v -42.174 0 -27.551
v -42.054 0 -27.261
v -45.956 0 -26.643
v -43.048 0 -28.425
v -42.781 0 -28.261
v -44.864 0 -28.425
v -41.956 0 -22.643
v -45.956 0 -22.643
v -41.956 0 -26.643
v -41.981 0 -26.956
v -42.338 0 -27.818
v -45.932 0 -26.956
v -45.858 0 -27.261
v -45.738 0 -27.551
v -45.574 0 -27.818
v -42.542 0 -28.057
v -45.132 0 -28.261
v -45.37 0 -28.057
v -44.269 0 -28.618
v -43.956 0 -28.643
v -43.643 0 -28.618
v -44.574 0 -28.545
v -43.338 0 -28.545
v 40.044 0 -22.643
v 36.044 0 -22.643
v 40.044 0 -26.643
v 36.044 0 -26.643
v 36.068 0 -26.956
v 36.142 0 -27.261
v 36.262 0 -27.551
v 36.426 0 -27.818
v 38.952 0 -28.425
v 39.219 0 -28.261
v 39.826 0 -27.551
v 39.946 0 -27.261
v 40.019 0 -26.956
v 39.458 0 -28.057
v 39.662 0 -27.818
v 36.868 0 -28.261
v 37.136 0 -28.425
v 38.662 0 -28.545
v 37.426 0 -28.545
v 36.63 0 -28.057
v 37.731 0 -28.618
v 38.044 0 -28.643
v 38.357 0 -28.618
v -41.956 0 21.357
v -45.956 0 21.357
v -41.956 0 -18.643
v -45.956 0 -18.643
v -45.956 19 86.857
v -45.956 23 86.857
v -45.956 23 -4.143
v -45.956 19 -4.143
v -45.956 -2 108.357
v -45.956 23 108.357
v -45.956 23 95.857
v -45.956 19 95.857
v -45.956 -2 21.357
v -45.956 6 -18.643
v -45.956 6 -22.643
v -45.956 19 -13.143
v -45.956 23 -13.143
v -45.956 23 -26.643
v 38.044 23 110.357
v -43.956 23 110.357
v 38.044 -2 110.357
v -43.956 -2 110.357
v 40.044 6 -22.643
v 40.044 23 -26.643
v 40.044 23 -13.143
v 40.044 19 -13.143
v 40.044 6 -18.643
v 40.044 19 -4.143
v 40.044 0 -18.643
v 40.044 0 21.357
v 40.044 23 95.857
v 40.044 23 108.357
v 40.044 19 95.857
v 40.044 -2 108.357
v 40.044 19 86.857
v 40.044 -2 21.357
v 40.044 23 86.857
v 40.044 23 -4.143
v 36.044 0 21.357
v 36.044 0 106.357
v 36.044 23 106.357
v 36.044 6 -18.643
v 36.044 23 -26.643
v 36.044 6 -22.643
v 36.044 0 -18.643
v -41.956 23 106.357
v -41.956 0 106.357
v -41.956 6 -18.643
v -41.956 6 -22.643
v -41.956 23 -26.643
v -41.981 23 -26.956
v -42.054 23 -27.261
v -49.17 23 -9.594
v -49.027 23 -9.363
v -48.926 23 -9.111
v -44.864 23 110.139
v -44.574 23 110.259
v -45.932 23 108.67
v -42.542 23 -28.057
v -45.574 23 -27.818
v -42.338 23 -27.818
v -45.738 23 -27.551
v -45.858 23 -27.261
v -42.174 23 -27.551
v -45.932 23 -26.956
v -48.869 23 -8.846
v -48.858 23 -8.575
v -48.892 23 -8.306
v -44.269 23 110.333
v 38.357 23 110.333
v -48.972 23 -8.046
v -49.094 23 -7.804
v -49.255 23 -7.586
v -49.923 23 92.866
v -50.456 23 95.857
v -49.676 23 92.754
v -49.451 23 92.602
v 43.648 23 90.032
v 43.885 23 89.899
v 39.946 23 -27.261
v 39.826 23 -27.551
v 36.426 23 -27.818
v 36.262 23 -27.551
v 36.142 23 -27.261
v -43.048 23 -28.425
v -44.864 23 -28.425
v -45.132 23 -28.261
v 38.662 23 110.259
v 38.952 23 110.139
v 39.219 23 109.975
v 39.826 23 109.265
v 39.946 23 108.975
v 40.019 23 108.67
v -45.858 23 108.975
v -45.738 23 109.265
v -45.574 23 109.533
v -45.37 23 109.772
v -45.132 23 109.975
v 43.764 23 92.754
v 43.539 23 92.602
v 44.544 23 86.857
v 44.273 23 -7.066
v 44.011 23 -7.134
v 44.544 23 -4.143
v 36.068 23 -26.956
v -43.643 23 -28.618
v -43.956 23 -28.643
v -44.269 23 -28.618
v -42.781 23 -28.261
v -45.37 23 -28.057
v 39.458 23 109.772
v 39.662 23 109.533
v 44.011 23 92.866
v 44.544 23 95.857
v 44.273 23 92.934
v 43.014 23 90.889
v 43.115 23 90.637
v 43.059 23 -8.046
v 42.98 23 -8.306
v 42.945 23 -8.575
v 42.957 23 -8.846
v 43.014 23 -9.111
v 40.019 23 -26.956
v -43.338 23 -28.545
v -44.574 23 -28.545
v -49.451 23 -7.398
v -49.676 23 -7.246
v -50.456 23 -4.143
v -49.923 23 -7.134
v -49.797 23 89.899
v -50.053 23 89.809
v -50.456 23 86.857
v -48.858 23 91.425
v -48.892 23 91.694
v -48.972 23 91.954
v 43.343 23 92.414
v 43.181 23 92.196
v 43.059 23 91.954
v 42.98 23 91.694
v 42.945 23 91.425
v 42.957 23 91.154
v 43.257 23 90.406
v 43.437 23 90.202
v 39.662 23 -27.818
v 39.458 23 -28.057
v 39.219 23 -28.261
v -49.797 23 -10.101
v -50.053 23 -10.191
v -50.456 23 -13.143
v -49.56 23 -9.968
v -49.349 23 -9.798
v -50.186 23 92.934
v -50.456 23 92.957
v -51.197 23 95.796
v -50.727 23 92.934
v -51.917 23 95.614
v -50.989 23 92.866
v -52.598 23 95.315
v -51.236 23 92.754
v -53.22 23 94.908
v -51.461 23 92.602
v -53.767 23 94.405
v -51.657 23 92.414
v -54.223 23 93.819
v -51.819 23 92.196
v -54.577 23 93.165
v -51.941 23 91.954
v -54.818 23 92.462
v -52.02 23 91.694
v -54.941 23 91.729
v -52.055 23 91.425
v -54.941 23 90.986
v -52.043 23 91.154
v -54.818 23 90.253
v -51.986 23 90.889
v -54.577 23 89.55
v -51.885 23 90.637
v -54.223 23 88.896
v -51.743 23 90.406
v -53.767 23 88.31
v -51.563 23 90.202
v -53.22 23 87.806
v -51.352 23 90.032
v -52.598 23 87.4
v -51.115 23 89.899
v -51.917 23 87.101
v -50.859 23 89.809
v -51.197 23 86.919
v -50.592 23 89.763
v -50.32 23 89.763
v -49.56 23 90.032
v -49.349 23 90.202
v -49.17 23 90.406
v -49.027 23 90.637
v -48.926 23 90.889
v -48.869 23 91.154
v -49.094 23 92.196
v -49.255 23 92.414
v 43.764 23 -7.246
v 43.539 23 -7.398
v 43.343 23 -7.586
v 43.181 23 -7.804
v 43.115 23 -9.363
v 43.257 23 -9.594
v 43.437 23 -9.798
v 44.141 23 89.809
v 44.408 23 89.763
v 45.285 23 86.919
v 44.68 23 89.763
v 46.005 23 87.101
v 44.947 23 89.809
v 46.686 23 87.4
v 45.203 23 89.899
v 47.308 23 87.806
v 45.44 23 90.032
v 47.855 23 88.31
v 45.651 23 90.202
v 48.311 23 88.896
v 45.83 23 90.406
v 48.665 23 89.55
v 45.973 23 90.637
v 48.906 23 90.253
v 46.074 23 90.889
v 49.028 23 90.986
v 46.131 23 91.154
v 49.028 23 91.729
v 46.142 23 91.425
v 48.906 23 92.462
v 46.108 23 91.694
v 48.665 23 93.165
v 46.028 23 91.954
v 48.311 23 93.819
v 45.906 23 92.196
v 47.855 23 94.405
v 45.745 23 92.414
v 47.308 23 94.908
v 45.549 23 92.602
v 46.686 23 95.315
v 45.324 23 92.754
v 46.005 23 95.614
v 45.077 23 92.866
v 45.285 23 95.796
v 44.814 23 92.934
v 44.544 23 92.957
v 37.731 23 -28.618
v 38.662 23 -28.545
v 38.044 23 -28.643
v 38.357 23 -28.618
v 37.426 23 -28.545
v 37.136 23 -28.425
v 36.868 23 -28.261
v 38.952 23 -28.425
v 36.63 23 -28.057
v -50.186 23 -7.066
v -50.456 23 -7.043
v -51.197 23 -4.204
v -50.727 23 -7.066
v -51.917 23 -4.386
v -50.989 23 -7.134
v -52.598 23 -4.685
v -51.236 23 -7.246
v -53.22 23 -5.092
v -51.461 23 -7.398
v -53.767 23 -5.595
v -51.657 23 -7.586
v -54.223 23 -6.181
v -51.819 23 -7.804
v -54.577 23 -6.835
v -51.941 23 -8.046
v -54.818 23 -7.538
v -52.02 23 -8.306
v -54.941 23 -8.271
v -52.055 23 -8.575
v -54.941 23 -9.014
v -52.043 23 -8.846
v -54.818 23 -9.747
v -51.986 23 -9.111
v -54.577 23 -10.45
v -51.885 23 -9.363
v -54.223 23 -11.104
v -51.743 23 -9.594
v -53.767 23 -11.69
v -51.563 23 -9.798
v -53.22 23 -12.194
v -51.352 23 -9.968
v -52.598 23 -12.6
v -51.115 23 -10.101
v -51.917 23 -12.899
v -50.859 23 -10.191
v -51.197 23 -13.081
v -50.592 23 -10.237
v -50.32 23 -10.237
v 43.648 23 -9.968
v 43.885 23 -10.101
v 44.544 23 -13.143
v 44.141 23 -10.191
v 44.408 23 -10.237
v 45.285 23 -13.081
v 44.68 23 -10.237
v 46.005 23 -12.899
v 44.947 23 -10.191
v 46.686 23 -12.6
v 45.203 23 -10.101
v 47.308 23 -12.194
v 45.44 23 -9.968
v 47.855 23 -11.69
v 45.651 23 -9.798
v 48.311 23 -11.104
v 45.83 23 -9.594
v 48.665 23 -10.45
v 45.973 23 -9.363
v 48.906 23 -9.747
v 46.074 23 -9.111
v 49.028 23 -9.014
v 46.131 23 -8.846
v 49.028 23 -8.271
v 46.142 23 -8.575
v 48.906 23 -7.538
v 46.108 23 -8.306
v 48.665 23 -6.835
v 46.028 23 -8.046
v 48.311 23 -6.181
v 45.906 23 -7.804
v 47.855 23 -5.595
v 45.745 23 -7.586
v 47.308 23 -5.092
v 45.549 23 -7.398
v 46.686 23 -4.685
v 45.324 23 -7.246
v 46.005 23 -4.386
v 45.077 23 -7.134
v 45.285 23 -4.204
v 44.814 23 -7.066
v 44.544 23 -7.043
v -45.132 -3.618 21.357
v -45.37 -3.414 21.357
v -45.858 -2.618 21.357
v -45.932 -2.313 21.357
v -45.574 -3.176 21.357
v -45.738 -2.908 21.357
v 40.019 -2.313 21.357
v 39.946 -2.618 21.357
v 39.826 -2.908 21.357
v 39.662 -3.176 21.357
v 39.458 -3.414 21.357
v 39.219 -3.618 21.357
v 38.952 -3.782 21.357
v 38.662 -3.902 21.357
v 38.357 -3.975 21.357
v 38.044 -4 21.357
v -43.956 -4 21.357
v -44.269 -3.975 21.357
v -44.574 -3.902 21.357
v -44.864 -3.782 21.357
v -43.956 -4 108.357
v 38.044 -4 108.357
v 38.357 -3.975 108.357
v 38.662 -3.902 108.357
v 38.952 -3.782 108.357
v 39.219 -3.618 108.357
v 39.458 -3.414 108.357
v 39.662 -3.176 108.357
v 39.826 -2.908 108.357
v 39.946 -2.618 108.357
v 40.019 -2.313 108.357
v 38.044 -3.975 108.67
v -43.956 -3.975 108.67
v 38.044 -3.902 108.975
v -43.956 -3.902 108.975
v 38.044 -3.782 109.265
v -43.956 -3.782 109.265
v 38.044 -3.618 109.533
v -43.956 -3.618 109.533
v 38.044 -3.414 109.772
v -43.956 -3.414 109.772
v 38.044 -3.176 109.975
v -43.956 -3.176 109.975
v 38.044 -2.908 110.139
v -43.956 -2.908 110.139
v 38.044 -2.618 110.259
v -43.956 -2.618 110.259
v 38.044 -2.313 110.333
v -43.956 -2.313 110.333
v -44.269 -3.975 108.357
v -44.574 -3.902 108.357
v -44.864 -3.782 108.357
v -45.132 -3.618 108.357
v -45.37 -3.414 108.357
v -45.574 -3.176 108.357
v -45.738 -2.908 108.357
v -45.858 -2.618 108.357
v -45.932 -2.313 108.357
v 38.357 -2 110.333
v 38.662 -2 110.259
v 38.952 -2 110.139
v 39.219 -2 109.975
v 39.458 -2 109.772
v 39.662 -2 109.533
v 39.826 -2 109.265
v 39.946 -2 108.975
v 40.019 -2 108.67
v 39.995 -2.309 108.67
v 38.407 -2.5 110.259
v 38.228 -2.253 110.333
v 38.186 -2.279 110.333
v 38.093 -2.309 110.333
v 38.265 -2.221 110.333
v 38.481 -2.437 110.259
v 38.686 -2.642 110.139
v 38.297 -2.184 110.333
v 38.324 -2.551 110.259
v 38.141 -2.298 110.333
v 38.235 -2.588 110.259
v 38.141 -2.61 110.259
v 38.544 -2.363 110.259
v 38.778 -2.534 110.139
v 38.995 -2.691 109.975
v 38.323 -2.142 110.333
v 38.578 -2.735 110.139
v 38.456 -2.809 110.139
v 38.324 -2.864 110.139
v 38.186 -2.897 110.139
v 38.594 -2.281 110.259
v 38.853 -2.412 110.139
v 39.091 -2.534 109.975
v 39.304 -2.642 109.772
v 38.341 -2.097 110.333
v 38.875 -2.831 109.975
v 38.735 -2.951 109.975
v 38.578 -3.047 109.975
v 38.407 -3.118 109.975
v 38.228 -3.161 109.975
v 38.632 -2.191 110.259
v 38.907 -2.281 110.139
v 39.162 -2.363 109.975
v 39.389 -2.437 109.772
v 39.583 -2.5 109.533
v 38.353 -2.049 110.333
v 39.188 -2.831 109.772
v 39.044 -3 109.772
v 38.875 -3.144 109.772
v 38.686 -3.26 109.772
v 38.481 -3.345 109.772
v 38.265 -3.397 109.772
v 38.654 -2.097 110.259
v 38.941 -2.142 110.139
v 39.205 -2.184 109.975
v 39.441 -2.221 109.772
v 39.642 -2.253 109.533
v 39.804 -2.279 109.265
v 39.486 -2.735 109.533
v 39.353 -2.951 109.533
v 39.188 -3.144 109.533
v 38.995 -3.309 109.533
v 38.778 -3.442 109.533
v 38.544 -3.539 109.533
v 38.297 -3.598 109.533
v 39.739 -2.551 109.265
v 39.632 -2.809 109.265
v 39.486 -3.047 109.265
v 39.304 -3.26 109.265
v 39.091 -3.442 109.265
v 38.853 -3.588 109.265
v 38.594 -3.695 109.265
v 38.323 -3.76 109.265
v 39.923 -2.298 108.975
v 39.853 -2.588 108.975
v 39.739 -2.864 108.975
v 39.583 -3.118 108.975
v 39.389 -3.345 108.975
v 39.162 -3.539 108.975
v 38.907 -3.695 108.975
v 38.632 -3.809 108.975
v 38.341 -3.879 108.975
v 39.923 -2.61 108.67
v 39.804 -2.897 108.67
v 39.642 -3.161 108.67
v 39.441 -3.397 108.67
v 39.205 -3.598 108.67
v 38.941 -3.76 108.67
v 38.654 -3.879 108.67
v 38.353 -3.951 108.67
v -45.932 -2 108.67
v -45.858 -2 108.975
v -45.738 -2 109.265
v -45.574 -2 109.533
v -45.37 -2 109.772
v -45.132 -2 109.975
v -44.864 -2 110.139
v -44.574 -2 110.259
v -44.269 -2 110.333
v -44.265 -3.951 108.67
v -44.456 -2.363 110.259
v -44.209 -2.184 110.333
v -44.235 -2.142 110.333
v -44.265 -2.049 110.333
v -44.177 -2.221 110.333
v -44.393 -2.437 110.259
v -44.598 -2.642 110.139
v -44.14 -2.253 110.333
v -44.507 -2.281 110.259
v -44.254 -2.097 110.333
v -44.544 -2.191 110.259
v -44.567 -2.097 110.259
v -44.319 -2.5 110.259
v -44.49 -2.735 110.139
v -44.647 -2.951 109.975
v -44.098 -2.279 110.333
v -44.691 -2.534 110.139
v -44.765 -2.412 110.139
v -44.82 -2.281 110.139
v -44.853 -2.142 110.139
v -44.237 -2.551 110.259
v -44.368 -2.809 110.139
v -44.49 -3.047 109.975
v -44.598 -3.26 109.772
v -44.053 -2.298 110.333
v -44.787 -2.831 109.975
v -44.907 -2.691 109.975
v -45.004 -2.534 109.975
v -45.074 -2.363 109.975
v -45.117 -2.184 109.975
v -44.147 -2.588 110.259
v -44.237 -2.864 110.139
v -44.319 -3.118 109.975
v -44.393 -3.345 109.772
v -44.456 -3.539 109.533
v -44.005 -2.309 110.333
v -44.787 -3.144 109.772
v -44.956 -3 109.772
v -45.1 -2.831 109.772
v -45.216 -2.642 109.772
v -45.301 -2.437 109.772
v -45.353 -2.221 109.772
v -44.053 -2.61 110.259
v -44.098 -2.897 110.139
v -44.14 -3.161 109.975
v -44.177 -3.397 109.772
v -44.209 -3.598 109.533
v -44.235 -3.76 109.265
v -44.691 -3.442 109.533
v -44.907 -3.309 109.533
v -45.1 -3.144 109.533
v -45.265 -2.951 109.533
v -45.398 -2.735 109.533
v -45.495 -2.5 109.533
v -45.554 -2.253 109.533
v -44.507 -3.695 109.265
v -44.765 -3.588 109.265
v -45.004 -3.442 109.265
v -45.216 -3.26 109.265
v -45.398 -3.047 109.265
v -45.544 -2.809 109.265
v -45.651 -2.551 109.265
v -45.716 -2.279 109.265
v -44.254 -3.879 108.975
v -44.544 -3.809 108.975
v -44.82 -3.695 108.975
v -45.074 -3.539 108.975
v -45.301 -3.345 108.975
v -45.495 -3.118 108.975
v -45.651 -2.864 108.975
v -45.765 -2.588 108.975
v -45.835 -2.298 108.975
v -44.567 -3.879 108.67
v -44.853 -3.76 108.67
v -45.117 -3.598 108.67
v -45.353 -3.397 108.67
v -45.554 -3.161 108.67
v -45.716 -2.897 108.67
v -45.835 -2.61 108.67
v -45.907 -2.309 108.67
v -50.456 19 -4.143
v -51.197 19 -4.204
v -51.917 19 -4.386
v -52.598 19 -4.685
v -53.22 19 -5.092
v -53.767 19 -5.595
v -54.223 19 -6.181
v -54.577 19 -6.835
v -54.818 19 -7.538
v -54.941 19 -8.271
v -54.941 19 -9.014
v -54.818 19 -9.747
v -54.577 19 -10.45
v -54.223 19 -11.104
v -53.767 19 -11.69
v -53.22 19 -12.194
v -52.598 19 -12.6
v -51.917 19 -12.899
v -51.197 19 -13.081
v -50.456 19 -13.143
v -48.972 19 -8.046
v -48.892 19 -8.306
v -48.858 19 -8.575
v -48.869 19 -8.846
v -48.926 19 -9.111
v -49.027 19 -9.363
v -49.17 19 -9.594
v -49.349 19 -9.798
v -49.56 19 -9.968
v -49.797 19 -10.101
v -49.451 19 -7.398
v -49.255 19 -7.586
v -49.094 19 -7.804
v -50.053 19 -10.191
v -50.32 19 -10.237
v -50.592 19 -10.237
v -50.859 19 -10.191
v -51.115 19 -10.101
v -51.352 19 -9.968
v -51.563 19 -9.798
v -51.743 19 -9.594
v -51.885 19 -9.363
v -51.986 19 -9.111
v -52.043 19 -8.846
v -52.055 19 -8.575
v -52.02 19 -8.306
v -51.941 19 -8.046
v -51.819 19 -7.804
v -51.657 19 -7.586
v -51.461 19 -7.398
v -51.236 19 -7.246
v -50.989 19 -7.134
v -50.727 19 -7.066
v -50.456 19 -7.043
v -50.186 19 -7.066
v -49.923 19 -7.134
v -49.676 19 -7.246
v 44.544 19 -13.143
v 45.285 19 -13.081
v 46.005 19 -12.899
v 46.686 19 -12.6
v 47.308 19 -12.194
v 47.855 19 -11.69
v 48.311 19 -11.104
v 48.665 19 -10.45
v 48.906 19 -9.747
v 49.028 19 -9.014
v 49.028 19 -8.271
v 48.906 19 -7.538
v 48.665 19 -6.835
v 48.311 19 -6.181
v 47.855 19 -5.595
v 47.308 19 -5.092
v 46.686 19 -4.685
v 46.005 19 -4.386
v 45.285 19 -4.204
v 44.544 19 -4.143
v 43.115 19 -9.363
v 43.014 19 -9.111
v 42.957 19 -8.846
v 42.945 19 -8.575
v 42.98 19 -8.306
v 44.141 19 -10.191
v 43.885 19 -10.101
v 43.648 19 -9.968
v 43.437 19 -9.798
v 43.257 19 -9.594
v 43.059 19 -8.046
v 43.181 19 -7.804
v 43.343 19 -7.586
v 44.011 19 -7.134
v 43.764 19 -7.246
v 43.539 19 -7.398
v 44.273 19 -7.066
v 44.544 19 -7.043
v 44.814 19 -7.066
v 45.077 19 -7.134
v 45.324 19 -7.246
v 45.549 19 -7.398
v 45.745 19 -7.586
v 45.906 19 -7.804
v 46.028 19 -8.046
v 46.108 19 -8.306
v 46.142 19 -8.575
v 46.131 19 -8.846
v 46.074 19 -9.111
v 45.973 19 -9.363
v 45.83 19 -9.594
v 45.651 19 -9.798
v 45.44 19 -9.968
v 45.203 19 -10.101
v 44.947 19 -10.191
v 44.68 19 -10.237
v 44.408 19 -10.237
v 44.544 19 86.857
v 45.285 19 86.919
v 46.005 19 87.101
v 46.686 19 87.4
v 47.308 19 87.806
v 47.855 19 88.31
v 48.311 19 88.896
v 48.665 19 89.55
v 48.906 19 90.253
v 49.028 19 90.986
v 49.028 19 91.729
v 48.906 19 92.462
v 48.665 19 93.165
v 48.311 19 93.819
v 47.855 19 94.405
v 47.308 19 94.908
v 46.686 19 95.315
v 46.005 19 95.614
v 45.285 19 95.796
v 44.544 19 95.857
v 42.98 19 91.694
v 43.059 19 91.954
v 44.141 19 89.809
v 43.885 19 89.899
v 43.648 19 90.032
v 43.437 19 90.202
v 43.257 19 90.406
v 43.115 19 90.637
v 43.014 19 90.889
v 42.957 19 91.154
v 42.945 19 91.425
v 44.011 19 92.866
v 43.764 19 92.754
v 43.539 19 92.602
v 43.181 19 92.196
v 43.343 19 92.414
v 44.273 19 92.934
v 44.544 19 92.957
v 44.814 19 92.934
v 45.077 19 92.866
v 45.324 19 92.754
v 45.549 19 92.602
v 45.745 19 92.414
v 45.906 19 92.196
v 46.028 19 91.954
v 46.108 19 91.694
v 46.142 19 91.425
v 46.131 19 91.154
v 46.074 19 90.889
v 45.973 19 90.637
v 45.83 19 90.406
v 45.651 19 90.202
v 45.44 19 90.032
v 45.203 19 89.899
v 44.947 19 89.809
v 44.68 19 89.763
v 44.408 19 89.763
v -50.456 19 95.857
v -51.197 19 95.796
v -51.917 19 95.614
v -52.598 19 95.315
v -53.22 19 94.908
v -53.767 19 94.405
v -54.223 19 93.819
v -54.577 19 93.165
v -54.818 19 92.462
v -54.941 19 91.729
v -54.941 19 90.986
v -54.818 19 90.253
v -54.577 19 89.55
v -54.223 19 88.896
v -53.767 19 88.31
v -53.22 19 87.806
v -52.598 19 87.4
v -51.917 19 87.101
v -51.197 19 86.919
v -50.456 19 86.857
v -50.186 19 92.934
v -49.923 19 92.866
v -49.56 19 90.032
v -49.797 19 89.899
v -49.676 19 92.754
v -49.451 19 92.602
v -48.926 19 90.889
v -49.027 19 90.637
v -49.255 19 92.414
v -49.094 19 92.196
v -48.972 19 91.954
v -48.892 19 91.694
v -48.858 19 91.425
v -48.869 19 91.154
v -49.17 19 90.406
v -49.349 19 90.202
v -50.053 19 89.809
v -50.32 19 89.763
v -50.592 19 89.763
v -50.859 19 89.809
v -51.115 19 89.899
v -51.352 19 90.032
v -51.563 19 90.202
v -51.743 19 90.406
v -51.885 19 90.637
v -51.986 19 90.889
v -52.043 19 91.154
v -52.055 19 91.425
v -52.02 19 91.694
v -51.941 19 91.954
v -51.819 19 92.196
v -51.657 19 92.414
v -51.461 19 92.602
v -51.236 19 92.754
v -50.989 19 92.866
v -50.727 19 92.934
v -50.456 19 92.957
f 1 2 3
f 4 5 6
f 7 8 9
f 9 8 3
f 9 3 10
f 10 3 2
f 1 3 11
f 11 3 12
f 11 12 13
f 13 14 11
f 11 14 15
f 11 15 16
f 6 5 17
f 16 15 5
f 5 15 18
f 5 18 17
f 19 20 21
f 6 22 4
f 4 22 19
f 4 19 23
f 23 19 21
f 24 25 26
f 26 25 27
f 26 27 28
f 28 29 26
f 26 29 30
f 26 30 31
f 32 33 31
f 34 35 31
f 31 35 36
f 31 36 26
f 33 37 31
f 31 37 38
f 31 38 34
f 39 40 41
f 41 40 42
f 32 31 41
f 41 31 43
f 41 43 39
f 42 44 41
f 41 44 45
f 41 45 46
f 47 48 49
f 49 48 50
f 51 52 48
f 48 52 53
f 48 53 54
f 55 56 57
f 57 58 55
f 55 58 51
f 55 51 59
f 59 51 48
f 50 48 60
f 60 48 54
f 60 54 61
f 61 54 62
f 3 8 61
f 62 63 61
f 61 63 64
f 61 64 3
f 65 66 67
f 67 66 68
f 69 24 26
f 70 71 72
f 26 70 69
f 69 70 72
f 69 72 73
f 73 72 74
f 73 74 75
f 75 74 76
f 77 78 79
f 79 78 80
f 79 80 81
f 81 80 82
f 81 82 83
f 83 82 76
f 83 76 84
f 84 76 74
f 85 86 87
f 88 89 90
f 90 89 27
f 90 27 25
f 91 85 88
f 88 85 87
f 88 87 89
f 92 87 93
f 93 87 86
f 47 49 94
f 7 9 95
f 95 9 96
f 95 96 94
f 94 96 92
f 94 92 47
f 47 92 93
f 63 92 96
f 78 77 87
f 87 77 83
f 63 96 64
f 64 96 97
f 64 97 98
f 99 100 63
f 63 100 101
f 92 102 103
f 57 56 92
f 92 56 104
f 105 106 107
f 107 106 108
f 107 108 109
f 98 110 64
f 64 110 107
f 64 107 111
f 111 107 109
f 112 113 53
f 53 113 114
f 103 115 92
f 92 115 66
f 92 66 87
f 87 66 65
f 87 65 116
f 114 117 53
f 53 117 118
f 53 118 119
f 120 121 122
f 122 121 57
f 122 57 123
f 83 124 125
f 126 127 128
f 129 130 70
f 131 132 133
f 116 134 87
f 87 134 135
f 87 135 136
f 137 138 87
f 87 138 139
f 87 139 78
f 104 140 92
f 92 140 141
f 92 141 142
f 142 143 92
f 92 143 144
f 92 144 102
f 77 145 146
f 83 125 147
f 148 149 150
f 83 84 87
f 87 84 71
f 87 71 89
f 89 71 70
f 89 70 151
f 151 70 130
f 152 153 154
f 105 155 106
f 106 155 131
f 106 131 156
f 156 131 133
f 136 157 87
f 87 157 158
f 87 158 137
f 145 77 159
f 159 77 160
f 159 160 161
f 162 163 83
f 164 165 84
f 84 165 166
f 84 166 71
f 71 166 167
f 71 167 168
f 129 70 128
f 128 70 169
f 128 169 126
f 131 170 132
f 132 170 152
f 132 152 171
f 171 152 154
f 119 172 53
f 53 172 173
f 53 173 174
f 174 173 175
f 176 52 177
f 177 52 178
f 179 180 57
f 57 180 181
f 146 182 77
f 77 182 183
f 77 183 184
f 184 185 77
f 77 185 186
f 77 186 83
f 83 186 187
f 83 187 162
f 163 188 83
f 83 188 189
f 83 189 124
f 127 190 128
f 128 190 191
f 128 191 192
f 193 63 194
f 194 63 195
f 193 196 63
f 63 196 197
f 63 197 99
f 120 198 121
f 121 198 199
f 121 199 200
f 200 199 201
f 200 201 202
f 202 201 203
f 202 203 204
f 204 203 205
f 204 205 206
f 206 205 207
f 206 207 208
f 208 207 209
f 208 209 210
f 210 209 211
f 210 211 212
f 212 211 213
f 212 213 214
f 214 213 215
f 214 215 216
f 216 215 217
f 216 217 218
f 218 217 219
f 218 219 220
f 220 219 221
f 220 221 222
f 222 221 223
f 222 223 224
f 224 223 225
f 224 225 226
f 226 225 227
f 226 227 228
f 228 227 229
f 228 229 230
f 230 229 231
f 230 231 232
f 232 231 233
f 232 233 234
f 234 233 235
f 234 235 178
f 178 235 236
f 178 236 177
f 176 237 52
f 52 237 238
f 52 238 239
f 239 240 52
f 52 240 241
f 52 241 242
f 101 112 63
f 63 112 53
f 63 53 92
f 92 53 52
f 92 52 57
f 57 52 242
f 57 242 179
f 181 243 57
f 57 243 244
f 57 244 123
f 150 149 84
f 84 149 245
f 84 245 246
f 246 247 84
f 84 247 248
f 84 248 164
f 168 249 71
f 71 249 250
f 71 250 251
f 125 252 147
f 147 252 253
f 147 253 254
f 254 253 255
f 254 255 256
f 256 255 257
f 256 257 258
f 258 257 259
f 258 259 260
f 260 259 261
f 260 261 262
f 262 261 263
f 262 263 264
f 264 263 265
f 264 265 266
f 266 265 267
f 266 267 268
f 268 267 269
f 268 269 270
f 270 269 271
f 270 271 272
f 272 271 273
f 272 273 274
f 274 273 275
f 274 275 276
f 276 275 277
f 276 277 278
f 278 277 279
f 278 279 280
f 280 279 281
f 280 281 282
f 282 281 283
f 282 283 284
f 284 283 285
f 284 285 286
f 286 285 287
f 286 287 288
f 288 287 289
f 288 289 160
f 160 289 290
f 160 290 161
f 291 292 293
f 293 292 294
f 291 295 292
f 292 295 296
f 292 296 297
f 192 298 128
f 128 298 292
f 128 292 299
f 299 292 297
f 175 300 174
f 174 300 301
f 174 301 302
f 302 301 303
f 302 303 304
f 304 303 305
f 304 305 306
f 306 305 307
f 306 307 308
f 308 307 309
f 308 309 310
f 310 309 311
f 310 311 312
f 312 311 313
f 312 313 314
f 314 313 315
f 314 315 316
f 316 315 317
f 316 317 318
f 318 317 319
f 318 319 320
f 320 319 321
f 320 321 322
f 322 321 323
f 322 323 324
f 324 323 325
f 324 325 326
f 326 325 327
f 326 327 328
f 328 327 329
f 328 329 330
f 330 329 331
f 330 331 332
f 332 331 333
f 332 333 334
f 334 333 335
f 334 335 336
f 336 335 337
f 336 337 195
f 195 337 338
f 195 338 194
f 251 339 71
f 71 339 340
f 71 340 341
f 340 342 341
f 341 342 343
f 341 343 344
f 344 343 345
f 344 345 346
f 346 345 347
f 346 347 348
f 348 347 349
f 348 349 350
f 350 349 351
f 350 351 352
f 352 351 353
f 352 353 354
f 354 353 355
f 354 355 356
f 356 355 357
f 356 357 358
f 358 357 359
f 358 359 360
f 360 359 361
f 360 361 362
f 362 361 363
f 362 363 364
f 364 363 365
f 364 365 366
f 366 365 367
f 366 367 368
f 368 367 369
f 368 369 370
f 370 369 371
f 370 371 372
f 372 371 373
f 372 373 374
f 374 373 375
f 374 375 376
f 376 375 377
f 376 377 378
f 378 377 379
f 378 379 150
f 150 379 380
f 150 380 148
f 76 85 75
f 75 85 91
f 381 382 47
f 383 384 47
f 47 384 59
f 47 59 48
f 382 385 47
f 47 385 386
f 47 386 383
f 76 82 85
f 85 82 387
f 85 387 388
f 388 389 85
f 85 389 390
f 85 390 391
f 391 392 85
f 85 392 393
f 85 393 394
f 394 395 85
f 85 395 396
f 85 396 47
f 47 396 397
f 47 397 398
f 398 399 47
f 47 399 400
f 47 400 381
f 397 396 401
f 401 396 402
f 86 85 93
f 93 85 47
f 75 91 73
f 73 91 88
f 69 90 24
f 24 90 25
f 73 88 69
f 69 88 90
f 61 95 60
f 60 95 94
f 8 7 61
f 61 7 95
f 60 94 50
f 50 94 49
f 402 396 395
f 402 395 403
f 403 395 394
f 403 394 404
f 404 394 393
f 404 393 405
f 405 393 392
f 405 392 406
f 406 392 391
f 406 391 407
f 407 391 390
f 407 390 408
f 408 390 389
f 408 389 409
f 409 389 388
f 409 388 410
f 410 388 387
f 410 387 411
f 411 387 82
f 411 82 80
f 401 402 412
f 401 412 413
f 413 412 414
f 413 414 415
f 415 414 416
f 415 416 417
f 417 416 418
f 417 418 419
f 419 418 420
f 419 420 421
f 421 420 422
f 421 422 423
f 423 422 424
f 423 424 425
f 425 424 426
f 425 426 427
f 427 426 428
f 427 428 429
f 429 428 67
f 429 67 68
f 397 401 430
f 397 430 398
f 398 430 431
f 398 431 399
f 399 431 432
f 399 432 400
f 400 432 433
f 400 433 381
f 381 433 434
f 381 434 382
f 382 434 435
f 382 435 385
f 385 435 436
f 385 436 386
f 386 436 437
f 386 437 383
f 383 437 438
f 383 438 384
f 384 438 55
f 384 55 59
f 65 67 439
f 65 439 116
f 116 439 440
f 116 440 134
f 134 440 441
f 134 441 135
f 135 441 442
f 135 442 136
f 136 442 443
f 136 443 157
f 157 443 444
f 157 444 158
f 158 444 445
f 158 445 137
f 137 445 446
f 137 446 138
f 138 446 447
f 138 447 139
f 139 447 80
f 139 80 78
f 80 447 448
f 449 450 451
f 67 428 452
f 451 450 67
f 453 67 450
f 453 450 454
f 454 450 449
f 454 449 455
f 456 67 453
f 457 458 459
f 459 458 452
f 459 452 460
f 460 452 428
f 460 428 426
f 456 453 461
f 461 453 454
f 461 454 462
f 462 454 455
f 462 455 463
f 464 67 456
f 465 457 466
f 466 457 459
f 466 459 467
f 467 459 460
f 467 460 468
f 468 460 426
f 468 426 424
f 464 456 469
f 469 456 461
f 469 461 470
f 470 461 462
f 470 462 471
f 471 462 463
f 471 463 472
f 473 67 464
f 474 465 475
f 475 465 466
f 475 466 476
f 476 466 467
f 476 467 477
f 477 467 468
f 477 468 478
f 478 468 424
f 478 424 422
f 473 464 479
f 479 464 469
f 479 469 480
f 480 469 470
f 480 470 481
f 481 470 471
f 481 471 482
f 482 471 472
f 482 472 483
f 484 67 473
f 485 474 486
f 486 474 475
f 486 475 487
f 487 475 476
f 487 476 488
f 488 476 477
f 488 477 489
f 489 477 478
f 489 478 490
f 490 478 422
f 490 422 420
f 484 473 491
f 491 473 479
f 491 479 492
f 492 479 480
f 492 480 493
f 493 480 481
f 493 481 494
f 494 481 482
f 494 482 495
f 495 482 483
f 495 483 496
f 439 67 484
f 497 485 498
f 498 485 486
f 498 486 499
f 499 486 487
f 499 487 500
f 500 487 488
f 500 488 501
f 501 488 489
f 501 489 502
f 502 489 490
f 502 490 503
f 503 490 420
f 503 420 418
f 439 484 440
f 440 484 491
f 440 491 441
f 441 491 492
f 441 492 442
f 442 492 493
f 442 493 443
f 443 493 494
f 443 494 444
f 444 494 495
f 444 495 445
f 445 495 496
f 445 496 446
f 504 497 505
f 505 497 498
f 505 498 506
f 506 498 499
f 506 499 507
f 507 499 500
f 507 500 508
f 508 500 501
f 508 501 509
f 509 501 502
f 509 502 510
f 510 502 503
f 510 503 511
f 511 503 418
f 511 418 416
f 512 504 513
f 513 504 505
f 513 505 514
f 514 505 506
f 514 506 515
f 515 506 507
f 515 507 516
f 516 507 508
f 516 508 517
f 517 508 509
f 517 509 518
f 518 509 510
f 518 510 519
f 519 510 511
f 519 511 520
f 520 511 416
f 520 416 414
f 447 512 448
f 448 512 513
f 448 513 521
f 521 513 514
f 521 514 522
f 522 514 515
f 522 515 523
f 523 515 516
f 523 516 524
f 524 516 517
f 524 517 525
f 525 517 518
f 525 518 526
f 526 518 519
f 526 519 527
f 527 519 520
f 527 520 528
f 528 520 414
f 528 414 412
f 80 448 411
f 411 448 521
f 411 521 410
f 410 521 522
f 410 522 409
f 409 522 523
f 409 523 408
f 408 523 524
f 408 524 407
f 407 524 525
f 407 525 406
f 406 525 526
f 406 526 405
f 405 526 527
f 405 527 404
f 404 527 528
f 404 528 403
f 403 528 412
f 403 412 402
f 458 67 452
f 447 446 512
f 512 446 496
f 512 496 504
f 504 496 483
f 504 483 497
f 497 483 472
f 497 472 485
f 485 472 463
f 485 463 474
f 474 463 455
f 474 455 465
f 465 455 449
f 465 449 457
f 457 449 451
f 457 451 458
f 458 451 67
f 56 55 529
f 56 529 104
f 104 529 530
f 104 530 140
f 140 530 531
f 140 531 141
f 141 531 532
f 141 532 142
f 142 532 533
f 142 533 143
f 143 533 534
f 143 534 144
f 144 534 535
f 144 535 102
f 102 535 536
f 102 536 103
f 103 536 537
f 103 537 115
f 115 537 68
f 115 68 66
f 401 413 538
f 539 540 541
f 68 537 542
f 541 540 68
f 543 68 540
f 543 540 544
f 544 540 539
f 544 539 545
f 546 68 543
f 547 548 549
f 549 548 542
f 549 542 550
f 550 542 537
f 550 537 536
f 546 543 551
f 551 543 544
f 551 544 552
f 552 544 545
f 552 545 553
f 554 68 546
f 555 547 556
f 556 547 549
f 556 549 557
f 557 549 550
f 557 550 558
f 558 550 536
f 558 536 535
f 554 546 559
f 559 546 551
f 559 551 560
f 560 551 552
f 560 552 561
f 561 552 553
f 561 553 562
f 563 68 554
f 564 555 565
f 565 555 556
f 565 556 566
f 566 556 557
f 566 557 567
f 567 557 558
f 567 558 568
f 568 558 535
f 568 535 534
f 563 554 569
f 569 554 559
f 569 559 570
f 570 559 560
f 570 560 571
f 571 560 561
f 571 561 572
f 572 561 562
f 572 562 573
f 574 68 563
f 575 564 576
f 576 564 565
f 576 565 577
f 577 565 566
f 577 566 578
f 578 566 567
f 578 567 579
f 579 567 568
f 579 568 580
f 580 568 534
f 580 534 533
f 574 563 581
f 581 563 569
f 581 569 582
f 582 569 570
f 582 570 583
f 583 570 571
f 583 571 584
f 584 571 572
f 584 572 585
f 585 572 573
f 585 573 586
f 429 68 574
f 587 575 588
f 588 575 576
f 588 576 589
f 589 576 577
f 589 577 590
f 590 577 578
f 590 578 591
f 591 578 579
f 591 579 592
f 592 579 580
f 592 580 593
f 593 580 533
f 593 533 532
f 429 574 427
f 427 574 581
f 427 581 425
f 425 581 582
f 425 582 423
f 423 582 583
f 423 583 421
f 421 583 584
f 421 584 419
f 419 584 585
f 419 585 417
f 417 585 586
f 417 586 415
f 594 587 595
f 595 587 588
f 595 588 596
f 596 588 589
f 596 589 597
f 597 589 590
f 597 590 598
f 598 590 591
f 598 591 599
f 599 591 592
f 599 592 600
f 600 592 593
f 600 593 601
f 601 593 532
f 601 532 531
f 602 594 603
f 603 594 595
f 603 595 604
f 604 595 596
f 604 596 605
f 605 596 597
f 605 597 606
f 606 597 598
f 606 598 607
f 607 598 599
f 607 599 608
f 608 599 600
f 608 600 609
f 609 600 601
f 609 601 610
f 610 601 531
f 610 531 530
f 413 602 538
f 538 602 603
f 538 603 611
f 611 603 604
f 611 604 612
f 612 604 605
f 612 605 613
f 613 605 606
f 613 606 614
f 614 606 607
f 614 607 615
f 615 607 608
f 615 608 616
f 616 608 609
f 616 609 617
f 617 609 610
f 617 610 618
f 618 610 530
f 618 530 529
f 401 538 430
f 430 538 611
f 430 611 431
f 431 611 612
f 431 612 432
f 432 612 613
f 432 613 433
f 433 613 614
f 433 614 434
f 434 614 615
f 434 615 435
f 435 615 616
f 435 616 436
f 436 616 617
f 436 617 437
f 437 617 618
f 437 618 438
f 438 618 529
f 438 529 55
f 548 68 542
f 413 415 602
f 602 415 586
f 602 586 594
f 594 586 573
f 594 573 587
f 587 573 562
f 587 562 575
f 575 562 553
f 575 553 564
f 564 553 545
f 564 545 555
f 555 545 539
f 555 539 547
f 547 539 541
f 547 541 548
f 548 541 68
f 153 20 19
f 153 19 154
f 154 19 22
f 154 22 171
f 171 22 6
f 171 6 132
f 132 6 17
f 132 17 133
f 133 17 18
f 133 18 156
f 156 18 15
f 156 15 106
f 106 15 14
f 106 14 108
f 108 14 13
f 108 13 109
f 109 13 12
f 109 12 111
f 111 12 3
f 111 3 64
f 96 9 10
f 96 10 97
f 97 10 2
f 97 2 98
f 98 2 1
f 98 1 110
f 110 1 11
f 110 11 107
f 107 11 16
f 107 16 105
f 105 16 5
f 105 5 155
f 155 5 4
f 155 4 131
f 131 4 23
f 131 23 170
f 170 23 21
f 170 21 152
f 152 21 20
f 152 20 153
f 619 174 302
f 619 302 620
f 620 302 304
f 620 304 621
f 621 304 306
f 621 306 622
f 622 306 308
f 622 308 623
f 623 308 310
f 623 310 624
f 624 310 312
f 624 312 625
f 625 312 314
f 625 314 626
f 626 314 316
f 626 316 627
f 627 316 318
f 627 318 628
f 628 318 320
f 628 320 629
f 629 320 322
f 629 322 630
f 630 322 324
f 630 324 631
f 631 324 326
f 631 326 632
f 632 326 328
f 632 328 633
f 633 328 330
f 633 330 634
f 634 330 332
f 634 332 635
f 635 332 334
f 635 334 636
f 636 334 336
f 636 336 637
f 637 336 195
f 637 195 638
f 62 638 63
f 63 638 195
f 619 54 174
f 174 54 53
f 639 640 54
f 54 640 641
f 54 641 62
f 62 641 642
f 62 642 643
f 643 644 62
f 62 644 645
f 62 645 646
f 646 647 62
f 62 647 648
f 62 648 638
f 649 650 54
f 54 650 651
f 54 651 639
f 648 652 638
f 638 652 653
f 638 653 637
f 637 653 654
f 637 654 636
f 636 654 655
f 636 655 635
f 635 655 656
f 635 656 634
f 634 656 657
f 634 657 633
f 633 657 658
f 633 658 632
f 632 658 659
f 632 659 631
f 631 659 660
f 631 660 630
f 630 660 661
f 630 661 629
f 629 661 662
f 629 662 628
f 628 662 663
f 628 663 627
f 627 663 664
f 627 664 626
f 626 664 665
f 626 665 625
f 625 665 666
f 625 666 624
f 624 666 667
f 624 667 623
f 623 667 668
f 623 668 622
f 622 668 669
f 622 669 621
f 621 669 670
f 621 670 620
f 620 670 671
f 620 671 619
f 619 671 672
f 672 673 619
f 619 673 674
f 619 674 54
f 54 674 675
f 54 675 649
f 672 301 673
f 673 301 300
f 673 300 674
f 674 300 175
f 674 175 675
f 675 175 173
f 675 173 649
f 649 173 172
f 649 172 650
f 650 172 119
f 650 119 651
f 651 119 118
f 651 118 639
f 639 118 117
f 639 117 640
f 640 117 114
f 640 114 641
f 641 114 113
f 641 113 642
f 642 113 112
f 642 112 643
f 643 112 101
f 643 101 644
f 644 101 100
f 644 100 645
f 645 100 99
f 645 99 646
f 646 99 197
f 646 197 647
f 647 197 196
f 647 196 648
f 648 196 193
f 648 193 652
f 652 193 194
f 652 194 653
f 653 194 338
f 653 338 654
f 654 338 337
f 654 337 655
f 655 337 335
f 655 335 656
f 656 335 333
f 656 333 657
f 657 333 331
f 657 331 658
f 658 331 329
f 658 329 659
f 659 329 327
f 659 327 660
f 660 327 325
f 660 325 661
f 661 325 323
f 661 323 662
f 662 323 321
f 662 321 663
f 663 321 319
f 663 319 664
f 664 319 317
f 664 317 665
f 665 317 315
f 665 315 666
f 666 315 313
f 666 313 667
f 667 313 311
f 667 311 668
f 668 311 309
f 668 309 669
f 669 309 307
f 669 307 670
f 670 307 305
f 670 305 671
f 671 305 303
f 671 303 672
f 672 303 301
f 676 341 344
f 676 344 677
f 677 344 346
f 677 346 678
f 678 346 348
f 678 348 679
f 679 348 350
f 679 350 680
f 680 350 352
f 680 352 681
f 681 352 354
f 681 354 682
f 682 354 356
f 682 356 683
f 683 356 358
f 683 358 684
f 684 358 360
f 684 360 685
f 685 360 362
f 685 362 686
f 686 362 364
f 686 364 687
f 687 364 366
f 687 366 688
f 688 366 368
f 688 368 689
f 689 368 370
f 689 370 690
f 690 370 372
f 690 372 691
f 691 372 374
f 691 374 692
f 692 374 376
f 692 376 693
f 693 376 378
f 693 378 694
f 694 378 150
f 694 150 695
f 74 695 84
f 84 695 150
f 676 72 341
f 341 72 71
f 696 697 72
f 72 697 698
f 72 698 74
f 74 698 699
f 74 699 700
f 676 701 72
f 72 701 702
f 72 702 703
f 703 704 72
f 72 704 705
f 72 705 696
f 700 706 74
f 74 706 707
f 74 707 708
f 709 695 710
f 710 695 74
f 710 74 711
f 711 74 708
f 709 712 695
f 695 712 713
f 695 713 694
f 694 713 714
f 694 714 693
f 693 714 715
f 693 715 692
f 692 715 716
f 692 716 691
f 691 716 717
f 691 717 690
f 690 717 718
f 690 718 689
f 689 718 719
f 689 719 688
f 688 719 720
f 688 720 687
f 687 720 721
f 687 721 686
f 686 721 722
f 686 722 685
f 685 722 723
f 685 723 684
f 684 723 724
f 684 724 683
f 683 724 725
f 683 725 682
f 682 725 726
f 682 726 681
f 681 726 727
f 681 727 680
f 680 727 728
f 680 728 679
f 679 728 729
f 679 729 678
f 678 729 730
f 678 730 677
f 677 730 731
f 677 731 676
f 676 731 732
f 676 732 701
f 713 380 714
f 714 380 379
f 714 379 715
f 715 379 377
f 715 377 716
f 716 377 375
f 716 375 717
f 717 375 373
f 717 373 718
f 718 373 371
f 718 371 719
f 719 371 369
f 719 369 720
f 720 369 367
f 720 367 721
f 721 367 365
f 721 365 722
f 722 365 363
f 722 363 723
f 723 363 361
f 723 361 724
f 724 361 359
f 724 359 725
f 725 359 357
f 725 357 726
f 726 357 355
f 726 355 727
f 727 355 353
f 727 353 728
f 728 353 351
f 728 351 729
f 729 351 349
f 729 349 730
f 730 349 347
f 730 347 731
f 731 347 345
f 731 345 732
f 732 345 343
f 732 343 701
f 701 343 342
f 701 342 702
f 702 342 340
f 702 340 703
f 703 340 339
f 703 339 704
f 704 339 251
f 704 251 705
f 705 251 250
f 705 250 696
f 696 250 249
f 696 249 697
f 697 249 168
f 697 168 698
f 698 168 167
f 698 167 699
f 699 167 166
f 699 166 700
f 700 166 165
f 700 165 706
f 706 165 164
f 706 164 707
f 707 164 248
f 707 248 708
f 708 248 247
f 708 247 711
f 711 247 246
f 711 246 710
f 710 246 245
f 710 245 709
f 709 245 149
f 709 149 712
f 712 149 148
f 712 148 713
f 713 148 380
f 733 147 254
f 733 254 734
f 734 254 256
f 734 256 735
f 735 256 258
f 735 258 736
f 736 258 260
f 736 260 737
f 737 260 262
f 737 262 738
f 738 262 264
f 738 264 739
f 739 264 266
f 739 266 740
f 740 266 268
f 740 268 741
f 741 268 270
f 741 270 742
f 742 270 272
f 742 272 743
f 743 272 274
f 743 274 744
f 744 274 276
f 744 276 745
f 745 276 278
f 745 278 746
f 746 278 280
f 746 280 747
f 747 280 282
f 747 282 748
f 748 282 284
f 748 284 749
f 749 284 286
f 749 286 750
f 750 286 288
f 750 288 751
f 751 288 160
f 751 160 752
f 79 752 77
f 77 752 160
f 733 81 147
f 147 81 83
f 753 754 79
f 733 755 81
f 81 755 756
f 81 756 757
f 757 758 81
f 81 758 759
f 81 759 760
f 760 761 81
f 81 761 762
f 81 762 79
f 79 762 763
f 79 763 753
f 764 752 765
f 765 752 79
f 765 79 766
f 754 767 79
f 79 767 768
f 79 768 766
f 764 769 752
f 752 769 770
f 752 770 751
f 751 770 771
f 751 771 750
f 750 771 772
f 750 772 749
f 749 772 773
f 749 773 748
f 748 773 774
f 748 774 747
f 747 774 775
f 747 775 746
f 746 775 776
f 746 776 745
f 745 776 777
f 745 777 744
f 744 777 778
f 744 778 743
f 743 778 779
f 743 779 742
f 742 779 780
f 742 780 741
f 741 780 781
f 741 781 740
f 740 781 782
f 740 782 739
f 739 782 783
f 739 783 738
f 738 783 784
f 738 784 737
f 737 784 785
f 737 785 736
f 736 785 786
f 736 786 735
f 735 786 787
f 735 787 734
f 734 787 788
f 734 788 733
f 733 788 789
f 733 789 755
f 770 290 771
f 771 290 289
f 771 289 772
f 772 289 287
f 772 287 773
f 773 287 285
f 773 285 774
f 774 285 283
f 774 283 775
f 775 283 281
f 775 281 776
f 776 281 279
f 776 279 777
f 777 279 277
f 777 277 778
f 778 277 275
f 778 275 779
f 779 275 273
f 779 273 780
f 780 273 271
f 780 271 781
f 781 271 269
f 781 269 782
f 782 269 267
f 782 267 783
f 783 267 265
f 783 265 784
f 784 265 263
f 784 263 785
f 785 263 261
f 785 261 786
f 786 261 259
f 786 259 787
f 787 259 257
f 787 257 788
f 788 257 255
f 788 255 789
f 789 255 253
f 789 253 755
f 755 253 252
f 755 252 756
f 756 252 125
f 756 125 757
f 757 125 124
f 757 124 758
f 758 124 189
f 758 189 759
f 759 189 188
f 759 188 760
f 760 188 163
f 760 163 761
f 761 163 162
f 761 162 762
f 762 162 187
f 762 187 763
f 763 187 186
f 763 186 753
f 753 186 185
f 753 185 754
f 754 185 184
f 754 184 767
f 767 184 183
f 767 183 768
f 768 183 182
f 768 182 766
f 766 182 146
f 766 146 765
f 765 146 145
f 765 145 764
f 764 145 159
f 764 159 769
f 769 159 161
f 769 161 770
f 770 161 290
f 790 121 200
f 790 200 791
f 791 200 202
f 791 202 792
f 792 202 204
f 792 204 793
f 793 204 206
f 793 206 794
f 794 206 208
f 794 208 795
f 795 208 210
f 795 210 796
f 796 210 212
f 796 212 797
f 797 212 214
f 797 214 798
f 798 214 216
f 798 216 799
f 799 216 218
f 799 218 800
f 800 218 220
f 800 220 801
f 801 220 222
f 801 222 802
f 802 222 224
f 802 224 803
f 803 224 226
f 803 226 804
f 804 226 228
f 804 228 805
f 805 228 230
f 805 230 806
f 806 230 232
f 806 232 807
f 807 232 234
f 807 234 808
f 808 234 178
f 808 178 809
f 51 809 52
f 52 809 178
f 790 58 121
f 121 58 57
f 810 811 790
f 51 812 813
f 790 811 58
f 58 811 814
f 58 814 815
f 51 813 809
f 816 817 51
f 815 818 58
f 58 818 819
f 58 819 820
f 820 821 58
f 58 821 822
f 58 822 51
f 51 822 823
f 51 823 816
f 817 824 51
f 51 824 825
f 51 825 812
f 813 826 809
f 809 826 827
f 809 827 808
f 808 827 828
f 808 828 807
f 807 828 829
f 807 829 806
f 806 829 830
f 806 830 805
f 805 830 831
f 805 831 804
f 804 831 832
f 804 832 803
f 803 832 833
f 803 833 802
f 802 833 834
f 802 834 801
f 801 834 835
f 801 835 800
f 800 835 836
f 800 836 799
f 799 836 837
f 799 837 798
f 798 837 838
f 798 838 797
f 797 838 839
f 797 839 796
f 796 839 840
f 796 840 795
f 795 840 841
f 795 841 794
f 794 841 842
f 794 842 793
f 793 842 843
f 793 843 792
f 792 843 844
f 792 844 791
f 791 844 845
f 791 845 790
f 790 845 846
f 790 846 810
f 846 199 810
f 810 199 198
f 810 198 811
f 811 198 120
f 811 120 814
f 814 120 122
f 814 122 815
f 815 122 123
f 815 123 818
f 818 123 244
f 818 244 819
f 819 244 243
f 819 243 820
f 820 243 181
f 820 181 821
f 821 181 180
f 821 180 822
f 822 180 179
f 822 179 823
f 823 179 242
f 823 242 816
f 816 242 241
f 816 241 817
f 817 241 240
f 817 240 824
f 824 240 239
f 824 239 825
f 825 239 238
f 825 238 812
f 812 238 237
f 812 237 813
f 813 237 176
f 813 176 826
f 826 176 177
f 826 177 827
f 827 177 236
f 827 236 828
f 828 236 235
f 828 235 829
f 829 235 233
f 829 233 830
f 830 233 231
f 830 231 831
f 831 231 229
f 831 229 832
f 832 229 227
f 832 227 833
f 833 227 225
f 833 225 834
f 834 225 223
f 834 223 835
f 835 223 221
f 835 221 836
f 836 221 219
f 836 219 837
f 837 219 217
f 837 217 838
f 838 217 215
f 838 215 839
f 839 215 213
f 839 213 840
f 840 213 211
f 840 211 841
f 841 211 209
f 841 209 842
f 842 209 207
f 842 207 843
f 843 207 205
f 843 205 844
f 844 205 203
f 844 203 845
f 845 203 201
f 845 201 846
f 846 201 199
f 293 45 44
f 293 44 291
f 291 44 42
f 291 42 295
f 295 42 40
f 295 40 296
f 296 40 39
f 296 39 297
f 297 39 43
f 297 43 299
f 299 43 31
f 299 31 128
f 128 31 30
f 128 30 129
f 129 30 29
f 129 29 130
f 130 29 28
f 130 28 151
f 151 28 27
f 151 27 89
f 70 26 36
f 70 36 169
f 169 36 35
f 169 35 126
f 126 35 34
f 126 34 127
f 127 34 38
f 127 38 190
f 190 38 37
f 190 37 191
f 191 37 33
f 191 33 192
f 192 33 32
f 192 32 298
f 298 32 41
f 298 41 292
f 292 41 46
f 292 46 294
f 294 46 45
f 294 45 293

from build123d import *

# Parameters (mm, degrees)
BOSS_EXTRUDE3_DEPTH = 23
SKETCH5_W           = 86
SKETCH5_H           = 89
BOSS_EXTRUDE4_DEPTH = 4
SKETCH7_W           = 86
SKETCH7_H           = 4
CUT_EXTRUDE2_DEPTH  = 6
FILLET2_R           = 2
FILLET3_R           = 2
SKETCH8_R           = 1.6
BOSS_EXTRUDE5_DEPTH = 4
FILLET4_R           = 2


# Some blends are built 0.0001 mm under size
with BuildPart() as part:
    # Sketch2 → Boss-Extrude3 (new body)
    with BuildSketch(Plane(origin=(0, 0, 0), x_dir=(1, 0, 0), z_dir=(0, 1, 0))):
        Polygon((-45.956172868, 28.642659602), (-45.956172868, -110.357340398), (40.043827132, -110.357340398), (40.043827132, 28.642659602), (36.043827132, 28.642659602), (36.043827132, -106.357340398), (-41.956172868, -106.357340398), (-41.956172868, 28.642659602), align=None)
    extrude(amount=BOSS_EXTRUDE3_DEPTH)

    # Sketch5 → Boss-Extrude4 (add)
    with BuildSketch(Plane.XZ):
        with Locations((-2.956172868, 65.857340398)):
            Rectangle(SKETCH5_W, SKETCH5_H)
    extrude(amount=BOSS_EXTRUDE4_DEPTH)

    # Sketch7 → Cut-Extrude2 (cut)
    with BuildSketch(Plane.XZ):
        with Locations((-2.956172868, -20.642659602)):
            Rectangle(SKETCH7_W, SKETCH7_H)
    extrude(amount=-CUT_EXTRUDE2_DEPTH, mode=Mode.SUBTRACT)

    # Fillet2
    fillet2_edges = [part.edges().sort_by_distance(p)[0] for p in [
        (40.043827132, -4, 65.857340398),
        (-2.956172868, -4, 110.357340398),
        (-45.956172868, -4, 65.857340398),
    ]]
    fillet(fillet2_edges, radius=FILLET2_R)

    # Fillet3
    # the kernel refuses this fillet: 2 mm, written as the material it takes off along each edge
    with BuildSketch(Plane(origin=(38.043827132, -2, 108.357340398), x_dir=(1, 0, 0), z_dir=(0, 0, 1))) as fillet3_piece_1_section:
        Polygon((0, 0), (FILLET3_R, 0), (FILLET3_R, -FILLET3_R), (0, -FILLET3_R), align=None)
    fillet3_piece_1 = extrude(amount=FILLET3_R, mode=Mode.PRIVATE)
    fillet3_piece_1 = fillet3_piece_1 - Plane(origin=(38.043827132, -2, 108.357340398), x_dir=(-0.7071067811865475, 0.7071067811865475, 0), z_dir=(0, 0, 1)) * Sphere(FILLET3_R, mode=Mode.PRIVATE)
    add(fillet3_piece_1, mode=Mode.SUBTRACT)
    with BuildSketch(Plane(origin=(-43.956172868, -2, 108.357340398), x_dir=(0, 0, 1), z_dir=(-1, 0, 0))) as fillet3_piece_2_section:
        Polygon((0, 0), (FILLET3_R, 0), (FILLET3_R, -FILLET3_R), (0, -FILLET3_R), align=None)
    fillet3_piece_2 = extrude(amount=FILLET3_R, mode=Mode.PRIVATE)
    fillet3_piece_2 = fillet3_piece_2 - Plane(origin=(-43.956172868, -2, 108.357340398), x_dir=(0, 0.7071067811865475, -0.7071067811865475), z_dir=(-1, 0, 0)) * Sphere(FILLET3_R, mode=Mode.PRIVATE)
    add(fillet3_piece_2, mode=Mode.SUBTRACT)
    with BuildSketch(Plane(origin=(-41.956172868, -5, -28.642659602), x_dir=(-1, 0, 0), z_dir=(0, 1, 0)), Plane(origin=(-45.956172868, -5, -28.642659602), x_dir=(0, 0, 1), z_dir=(0, 1, 0))) as fillet3_piece_3:
        with BuildLine():
            CenterArc((FILLET3_R, FILLET3_R), FILLET3_R, 180, 90)
            Line((0, FILLET3_R), (0, 0))
            Line((0, 0), (FILLET3_R, 0))
        make_face()
    extrude(amount=33, mode=Mode.SUBTRACT)
    with BuildSketch(Plane(origin=(40.043827132, -2, 110.357340398), x_dir=(-1, 0, 0), z_dir=(0, 1, 0)), Plane(origin=(-45.956172868, -2, 110.357340398), x_dir=(0, 0, -1), z_dir=(0, 1, 0))) as fillet3_piece_4:
        with BuildLine():
            CenterArc((FILLET3_R, -FILLET3_R), FILLET3_R, 90, 90)
            Line((0, -FILLET3_R), (0, 0))
            Line((0, 0), (FILLET3_R, 0))
        make_face()
    extrude(amount=30, mode=Mode.SUBTRACT)

    # Sketch8 → Boss-Extrude5 (add)
    # profile 1 of 4: a face of its own
    with BuildSketch(Plane(origin=(0, 23, 0), x_dir=(1, 0, 0), z_dir=(0, 1, 0))):
        with BuildLine():
            Line((40.043827132, -95.857340398), (40.043827132, -86.857340398))
            Line((40.043827132, -86.857340398), (44.543827132, -86.857340398))
            ThreePointArc((44.543827132, -86.857340398), (49.043827132, -91.357340398), (44.543827132, -95.857340398))
            Line((44.543827132, -95.857340398), (40.043827132, -95.857340398))
        make_face()
        with Locations(Location((44.543827132, -91.357340398, 0), (0, 0, 270))):
            Circle(SKETCH8_R, mode=Mode.SUBTRACT)
    # profile 2 of 4: a face of its own
    with BuildSketch(Plane(origin=(0, 23, 0), x_dir=(1, 0, 0), z_dir=(0, 1, 0))):
        with BuildLine():
            Line((-50.456172868, 13.142659602), (-45.956172868, 13.142659602))
            Line((-45.956172868, 13.142659602), (-45.956172868, 4.142659602))
            Line((-45.956172868, 4.142659602), (-50.456172868, 4.142659602))
            ThreePointArc((-50.456172868, 4.142659602), (-54.956172868, 8.642659602), (-50.456172868, 13.142659602))
        make_face()
        with Locations(Location((-50.456172868, 8.642659602, 0), (0, 0, 270))):
            Circle(SKETCH8_R, mode=Mode.SUBTRACT)
    # profile 3 of 4: a face of its own
    with BuildSketch(Plane(origin=(0, 23, 0), x_dir=(1, 0, 0), z_dir=(0, 1, 0))):
        with BuildLine():
            Line((44.543827132, 13.142659602), (40.043827132, 13.142659602))
            Line((40.043827132, 13.142659602), (40.043827132, 4.142659602))
            Line((40.043827132, 4.142659602), (44.543827132, 4.142659602))
            ThreePointArc((44.543827132, 4.142659602), (49.043827132, 8.642659602), (44.543827132, 13.142659602))
        make_face()
        with Locations(Location((44.543827132, 8.642659602, 0), (0, 0, 270))):
            Circle(SKETCH8_R, mode=Mode.SUBTRACT)
    # profile 4 of 4: a face of its own
    with BuildSketch(Plane(origin=(0, 23, 0), x_dir=(1, 0, 0), z_dir=(0, 1, 0))):
        with BuildLine():
            Line((-50.456172868, -86.857340398), (-45.956172868, -86.857340398))
            Line((-45.956172868, -86.857340398), (-45.956172868, -95.857340398))
            Line((-45.956172868, -95.857340398), (-50.456172868, -95.857340398))
            ThreePointArc((-50.456172868, -95.857340398), (-54.956172868, -91.357340398), (-50.456172868, -86.857340398))
        make_face()
        with Locations(Location((-50.456172868, -91.357340398, 0), (0, 0, 270))):
            Circle(SKETCH8_R, mode=Mode.SUBTRACT)
    extrude(amount=-BOSS_EXTRUDE5_DEPTH)

    # Fillet4
    fillet4_edges = [part.edges().sort_by_distance(p)[0] for p in [
        (40.043827132, 11.5, -28.642659602),
        (36.043827132, 11.5, -28.642659602),
    ]]
    fillet(fillet4_edges, radius=FILLET4_R - 0.0001)  # a hair under: the kernel refuses the full size


solid = part.part
